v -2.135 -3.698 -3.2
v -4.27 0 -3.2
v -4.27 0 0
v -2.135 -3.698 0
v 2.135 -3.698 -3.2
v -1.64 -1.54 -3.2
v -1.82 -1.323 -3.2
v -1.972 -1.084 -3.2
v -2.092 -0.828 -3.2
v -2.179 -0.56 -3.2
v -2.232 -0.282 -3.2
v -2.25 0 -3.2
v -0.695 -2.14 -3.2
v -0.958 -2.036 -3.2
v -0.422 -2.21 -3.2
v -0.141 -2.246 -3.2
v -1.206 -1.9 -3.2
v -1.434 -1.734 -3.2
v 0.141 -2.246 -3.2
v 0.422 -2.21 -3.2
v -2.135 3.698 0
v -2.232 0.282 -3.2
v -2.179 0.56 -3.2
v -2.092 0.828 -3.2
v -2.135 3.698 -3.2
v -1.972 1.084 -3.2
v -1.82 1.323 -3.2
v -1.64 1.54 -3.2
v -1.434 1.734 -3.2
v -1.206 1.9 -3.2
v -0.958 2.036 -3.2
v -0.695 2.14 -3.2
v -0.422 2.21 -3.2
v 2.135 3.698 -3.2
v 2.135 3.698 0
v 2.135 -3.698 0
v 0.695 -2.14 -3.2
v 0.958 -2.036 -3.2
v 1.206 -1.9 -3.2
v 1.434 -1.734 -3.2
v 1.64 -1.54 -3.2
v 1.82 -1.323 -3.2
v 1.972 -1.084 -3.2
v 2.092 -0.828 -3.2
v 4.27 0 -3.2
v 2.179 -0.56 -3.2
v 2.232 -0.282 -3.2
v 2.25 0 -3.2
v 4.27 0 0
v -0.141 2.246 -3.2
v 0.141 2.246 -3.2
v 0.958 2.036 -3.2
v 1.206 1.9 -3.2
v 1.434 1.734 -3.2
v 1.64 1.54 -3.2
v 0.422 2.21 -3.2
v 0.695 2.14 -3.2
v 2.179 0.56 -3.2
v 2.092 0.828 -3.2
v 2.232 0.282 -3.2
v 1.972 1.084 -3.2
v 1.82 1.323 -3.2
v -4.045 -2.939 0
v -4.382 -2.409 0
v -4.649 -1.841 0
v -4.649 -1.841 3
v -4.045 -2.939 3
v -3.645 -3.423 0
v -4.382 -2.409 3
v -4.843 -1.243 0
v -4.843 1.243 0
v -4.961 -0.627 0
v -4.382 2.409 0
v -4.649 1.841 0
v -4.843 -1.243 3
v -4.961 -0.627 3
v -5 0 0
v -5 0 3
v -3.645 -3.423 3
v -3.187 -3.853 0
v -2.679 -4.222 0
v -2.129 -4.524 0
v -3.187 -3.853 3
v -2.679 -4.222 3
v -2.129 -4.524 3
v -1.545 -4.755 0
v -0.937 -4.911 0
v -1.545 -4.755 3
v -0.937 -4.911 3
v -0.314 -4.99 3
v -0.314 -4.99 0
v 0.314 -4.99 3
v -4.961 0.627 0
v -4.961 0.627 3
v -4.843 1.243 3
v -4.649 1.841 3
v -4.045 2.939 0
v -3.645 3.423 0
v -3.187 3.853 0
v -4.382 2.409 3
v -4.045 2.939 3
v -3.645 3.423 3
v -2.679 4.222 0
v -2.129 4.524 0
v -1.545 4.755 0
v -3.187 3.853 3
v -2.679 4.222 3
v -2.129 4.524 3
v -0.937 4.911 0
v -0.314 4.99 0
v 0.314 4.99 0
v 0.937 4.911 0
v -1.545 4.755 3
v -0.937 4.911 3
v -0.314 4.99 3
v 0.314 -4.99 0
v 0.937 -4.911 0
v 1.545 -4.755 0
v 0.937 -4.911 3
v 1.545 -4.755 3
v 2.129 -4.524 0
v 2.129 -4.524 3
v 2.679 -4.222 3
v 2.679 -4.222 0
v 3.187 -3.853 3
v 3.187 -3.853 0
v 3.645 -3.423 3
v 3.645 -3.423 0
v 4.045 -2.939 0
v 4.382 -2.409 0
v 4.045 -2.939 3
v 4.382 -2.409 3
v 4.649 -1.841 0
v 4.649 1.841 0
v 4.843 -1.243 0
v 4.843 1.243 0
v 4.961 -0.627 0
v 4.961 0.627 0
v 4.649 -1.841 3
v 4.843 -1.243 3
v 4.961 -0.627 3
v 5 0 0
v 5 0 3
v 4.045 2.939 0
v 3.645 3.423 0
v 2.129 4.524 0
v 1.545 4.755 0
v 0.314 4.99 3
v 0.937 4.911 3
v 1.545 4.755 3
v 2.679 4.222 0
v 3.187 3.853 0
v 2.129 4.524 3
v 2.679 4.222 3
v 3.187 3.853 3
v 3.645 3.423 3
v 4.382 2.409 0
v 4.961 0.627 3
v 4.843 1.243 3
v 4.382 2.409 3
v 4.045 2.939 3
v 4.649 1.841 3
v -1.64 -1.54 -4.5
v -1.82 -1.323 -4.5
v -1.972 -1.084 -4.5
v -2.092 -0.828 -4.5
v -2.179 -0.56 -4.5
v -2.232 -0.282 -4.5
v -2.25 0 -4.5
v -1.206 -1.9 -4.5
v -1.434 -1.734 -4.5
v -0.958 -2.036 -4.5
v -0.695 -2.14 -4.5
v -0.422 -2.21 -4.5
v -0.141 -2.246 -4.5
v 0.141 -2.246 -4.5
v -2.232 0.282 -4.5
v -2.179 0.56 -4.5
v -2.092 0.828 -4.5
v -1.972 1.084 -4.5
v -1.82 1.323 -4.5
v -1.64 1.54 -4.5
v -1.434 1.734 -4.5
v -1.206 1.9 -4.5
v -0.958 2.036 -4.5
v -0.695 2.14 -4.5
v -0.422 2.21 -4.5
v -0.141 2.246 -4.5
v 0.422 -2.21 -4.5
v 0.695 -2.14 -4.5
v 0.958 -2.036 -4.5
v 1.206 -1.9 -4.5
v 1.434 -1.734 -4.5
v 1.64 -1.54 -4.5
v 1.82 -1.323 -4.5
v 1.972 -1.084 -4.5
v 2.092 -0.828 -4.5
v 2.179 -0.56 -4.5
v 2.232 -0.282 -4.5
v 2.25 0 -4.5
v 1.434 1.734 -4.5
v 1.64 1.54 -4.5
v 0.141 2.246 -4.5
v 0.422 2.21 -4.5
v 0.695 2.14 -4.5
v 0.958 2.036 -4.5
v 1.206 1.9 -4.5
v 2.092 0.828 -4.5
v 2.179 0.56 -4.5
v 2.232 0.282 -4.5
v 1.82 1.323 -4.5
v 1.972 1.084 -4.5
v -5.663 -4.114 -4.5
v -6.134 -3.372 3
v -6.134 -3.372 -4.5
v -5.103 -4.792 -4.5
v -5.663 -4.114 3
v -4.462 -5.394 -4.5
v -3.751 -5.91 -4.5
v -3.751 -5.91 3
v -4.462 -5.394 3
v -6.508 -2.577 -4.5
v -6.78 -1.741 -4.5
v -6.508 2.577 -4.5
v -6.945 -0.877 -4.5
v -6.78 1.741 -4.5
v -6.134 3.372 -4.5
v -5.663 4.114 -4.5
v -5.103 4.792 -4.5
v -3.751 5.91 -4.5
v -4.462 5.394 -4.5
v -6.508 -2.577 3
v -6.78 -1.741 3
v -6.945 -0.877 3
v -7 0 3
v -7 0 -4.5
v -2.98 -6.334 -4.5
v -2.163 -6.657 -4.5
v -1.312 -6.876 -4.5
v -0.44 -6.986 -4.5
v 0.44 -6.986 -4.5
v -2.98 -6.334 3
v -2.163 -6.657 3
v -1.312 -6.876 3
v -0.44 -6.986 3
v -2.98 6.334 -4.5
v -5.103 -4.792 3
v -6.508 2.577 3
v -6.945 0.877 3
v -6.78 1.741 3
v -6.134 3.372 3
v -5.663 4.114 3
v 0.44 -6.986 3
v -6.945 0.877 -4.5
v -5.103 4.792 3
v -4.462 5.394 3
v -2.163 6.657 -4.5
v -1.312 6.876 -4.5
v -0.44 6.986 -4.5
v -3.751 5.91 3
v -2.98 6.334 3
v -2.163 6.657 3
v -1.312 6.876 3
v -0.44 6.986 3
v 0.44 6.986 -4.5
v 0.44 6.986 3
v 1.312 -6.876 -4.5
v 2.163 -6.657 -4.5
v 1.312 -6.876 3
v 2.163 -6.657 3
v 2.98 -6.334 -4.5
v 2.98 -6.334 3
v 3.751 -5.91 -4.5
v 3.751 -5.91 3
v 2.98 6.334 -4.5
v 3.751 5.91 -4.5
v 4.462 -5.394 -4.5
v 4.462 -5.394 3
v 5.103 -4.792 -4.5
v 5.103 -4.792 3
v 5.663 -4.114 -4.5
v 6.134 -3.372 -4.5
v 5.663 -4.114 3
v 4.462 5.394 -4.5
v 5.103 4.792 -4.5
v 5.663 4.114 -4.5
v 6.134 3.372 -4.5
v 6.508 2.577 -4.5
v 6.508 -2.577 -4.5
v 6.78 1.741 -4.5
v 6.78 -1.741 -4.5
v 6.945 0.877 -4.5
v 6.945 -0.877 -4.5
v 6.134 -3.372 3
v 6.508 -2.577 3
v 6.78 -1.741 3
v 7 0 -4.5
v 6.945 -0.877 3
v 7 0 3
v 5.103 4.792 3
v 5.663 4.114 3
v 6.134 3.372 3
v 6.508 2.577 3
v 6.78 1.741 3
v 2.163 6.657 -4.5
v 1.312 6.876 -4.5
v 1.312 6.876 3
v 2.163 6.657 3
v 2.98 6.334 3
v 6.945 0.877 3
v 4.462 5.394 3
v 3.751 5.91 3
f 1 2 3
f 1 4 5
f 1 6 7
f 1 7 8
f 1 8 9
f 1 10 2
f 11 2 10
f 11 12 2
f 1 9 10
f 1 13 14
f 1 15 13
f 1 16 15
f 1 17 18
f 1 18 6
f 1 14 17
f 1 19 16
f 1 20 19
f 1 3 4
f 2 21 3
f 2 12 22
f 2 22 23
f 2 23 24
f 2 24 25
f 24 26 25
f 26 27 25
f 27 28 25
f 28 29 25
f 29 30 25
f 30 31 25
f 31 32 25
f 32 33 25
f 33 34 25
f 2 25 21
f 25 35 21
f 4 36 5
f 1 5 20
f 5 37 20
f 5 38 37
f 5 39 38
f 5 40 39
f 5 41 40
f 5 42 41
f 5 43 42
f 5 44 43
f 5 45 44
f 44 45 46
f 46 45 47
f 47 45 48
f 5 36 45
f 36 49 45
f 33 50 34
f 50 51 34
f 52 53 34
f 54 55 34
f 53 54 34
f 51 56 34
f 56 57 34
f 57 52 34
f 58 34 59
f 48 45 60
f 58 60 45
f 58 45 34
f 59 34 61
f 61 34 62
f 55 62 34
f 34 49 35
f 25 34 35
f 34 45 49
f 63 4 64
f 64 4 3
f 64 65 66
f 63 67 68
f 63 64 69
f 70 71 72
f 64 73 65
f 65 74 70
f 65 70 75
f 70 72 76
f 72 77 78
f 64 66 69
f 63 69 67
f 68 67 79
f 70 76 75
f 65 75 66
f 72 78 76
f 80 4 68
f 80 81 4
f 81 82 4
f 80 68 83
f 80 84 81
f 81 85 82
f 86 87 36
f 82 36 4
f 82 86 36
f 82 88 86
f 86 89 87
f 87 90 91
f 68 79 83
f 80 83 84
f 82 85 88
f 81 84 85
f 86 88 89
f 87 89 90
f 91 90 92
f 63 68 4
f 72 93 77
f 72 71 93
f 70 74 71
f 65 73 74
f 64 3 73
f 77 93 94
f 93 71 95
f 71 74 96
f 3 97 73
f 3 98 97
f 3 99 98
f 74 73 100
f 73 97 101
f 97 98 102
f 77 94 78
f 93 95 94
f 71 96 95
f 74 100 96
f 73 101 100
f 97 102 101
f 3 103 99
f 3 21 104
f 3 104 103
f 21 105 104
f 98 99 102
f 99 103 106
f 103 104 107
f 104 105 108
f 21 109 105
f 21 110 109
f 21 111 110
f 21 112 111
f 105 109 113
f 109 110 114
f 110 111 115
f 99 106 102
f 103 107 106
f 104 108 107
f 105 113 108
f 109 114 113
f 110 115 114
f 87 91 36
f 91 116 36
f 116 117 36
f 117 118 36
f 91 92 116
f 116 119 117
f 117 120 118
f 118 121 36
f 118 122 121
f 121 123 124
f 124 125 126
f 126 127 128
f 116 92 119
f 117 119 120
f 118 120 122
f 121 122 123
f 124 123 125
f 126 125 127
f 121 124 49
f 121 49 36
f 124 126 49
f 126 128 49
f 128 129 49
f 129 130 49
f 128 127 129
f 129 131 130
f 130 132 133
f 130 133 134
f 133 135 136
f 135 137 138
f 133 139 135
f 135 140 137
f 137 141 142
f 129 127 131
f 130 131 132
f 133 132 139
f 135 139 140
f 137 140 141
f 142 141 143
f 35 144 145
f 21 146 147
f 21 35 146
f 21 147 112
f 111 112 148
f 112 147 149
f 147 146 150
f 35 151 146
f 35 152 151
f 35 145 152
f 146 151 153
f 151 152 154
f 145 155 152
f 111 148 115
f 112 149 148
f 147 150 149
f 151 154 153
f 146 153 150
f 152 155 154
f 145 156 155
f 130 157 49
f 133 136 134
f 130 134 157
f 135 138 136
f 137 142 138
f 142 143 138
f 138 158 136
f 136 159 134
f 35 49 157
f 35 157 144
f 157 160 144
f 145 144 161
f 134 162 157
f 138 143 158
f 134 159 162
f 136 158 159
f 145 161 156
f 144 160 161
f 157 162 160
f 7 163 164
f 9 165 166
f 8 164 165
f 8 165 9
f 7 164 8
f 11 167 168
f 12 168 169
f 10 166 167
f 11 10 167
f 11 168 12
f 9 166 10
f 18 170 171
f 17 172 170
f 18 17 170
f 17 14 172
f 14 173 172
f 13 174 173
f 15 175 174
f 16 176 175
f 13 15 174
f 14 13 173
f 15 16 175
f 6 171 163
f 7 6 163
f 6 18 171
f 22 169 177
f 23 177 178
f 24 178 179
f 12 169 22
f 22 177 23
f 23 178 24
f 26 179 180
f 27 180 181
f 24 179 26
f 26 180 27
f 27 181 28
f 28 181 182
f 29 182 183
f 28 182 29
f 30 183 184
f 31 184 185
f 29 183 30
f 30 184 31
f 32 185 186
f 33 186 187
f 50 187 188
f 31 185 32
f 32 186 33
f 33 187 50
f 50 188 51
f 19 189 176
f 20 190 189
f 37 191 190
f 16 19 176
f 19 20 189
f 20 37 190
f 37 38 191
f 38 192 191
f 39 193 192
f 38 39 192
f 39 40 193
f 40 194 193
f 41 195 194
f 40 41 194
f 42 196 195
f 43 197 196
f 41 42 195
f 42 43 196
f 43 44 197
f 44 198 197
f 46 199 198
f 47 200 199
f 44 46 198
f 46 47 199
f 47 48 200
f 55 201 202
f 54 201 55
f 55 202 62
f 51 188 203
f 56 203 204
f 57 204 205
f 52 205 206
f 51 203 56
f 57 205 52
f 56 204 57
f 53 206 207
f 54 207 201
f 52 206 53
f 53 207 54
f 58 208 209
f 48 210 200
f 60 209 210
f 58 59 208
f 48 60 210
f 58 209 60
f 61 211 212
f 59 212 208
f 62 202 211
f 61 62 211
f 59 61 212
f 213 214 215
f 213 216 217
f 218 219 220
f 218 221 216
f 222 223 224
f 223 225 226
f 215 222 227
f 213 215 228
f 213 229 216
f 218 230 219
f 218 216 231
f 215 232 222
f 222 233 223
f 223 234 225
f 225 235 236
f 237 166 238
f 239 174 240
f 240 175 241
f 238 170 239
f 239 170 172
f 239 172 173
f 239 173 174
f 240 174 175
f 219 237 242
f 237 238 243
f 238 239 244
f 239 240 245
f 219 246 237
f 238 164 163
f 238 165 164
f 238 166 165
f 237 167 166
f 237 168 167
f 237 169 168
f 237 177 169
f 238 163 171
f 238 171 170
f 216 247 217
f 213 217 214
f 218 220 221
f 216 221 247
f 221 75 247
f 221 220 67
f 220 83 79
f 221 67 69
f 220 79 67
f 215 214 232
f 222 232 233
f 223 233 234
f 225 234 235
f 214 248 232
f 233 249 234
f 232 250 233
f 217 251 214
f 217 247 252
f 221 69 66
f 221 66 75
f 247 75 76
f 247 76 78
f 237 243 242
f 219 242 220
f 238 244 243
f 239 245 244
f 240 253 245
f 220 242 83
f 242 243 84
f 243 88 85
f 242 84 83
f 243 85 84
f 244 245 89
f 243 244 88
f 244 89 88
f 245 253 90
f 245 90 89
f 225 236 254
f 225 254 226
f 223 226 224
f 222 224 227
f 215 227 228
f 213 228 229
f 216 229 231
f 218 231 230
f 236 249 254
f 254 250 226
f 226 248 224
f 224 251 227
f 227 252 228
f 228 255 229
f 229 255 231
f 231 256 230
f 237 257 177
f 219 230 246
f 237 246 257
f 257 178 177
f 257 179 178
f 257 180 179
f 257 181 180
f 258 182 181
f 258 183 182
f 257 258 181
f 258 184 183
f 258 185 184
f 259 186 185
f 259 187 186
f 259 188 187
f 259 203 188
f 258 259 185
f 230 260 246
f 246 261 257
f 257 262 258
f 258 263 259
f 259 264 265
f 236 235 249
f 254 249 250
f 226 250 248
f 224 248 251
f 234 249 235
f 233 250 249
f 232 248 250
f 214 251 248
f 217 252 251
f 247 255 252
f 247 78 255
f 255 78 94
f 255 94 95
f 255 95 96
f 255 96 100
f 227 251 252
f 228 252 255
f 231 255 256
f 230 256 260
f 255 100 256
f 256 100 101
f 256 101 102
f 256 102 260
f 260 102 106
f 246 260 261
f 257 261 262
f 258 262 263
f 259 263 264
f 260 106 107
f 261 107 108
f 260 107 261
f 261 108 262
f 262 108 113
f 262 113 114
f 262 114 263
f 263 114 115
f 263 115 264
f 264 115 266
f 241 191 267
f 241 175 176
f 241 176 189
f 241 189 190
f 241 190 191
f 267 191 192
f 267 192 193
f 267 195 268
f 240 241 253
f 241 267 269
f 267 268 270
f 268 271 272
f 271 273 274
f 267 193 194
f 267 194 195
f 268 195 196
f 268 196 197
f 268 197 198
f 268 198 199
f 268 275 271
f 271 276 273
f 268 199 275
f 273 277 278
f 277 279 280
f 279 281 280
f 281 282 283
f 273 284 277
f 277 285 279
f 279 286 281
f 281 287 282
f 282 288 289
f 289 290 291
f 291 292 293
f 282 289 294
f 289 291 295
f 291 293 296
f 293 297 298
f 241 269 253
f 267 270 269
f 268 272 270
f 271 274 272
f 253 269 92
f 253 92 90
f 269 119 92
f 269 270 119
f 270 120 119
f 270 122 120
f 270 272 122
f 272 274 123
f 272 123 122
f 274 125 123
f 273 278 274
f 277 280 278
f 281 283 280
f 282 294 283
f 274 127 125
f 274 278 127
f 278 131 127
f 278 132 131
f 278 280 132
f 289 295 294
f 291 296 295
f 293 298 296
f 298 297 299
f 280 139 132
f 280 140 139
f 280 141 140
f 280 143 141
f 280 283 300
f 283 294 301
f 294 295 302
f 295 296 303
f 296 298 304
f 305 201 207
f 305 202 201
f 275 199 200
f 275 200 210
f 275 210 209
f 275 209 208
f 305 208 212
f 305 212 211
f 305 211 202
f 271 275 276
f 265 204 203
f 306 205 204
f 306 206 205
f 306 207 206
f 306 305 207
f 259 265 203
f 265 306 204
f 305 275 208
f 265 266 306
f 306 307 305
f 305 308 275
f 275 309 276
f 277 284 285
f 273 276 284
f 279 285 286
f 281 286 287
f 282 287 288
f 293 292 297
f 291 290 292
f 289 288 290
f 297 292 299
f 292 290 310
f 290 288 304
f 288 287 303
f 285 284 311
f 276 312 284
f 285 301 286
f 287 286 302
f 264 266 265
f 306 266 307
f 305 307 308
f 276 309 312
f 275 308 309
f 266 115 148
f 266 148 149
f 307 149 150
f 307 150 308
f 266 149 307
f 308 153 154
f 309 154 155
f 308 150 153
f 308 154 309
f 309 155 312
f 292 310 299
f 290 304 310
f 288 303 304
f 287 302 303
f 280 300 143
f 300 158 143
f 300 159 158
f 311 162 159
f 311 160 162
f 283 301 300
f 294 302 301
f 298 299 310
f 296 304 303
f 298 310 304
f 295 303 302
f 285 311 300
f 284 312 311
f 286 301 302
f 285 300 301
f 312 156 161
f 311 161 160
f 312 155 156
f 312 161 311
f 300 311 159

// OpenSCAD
$fn = 50;

difference() {
	union() {
		translate(v = [0, 0, -4.5]) {
			cylinder(h = 7.5, r = 7.0);
		}
	}
	union() {
		translate(v = [0, 0, 0]) {
			rotate(a = [0, 0, 0]) {
				difference() {
					union() {
						translate(v = [0, 0, -3.2]) {
							linear_extrude(height = 3.2) {
								polygon(points = [[4.2698, 0.0], [2.1349000000000005, 3.697755269078796], [-2.134899999999999, 3.6977552690787965], [-4.2698, 5.228996902999369e-16], [-2.134900000000002, -3.6977552690787956], [2.1348999999999974, -3.697755269078798]]);
							}
						}
					}
					union();
				}
			}
		}
		#cylinder(h = 3, r = 5.0);
		#translate(v = [0, 0, -100.0]) {
			cylinder(h = 200, r = 2.25);
		}
	}
}
